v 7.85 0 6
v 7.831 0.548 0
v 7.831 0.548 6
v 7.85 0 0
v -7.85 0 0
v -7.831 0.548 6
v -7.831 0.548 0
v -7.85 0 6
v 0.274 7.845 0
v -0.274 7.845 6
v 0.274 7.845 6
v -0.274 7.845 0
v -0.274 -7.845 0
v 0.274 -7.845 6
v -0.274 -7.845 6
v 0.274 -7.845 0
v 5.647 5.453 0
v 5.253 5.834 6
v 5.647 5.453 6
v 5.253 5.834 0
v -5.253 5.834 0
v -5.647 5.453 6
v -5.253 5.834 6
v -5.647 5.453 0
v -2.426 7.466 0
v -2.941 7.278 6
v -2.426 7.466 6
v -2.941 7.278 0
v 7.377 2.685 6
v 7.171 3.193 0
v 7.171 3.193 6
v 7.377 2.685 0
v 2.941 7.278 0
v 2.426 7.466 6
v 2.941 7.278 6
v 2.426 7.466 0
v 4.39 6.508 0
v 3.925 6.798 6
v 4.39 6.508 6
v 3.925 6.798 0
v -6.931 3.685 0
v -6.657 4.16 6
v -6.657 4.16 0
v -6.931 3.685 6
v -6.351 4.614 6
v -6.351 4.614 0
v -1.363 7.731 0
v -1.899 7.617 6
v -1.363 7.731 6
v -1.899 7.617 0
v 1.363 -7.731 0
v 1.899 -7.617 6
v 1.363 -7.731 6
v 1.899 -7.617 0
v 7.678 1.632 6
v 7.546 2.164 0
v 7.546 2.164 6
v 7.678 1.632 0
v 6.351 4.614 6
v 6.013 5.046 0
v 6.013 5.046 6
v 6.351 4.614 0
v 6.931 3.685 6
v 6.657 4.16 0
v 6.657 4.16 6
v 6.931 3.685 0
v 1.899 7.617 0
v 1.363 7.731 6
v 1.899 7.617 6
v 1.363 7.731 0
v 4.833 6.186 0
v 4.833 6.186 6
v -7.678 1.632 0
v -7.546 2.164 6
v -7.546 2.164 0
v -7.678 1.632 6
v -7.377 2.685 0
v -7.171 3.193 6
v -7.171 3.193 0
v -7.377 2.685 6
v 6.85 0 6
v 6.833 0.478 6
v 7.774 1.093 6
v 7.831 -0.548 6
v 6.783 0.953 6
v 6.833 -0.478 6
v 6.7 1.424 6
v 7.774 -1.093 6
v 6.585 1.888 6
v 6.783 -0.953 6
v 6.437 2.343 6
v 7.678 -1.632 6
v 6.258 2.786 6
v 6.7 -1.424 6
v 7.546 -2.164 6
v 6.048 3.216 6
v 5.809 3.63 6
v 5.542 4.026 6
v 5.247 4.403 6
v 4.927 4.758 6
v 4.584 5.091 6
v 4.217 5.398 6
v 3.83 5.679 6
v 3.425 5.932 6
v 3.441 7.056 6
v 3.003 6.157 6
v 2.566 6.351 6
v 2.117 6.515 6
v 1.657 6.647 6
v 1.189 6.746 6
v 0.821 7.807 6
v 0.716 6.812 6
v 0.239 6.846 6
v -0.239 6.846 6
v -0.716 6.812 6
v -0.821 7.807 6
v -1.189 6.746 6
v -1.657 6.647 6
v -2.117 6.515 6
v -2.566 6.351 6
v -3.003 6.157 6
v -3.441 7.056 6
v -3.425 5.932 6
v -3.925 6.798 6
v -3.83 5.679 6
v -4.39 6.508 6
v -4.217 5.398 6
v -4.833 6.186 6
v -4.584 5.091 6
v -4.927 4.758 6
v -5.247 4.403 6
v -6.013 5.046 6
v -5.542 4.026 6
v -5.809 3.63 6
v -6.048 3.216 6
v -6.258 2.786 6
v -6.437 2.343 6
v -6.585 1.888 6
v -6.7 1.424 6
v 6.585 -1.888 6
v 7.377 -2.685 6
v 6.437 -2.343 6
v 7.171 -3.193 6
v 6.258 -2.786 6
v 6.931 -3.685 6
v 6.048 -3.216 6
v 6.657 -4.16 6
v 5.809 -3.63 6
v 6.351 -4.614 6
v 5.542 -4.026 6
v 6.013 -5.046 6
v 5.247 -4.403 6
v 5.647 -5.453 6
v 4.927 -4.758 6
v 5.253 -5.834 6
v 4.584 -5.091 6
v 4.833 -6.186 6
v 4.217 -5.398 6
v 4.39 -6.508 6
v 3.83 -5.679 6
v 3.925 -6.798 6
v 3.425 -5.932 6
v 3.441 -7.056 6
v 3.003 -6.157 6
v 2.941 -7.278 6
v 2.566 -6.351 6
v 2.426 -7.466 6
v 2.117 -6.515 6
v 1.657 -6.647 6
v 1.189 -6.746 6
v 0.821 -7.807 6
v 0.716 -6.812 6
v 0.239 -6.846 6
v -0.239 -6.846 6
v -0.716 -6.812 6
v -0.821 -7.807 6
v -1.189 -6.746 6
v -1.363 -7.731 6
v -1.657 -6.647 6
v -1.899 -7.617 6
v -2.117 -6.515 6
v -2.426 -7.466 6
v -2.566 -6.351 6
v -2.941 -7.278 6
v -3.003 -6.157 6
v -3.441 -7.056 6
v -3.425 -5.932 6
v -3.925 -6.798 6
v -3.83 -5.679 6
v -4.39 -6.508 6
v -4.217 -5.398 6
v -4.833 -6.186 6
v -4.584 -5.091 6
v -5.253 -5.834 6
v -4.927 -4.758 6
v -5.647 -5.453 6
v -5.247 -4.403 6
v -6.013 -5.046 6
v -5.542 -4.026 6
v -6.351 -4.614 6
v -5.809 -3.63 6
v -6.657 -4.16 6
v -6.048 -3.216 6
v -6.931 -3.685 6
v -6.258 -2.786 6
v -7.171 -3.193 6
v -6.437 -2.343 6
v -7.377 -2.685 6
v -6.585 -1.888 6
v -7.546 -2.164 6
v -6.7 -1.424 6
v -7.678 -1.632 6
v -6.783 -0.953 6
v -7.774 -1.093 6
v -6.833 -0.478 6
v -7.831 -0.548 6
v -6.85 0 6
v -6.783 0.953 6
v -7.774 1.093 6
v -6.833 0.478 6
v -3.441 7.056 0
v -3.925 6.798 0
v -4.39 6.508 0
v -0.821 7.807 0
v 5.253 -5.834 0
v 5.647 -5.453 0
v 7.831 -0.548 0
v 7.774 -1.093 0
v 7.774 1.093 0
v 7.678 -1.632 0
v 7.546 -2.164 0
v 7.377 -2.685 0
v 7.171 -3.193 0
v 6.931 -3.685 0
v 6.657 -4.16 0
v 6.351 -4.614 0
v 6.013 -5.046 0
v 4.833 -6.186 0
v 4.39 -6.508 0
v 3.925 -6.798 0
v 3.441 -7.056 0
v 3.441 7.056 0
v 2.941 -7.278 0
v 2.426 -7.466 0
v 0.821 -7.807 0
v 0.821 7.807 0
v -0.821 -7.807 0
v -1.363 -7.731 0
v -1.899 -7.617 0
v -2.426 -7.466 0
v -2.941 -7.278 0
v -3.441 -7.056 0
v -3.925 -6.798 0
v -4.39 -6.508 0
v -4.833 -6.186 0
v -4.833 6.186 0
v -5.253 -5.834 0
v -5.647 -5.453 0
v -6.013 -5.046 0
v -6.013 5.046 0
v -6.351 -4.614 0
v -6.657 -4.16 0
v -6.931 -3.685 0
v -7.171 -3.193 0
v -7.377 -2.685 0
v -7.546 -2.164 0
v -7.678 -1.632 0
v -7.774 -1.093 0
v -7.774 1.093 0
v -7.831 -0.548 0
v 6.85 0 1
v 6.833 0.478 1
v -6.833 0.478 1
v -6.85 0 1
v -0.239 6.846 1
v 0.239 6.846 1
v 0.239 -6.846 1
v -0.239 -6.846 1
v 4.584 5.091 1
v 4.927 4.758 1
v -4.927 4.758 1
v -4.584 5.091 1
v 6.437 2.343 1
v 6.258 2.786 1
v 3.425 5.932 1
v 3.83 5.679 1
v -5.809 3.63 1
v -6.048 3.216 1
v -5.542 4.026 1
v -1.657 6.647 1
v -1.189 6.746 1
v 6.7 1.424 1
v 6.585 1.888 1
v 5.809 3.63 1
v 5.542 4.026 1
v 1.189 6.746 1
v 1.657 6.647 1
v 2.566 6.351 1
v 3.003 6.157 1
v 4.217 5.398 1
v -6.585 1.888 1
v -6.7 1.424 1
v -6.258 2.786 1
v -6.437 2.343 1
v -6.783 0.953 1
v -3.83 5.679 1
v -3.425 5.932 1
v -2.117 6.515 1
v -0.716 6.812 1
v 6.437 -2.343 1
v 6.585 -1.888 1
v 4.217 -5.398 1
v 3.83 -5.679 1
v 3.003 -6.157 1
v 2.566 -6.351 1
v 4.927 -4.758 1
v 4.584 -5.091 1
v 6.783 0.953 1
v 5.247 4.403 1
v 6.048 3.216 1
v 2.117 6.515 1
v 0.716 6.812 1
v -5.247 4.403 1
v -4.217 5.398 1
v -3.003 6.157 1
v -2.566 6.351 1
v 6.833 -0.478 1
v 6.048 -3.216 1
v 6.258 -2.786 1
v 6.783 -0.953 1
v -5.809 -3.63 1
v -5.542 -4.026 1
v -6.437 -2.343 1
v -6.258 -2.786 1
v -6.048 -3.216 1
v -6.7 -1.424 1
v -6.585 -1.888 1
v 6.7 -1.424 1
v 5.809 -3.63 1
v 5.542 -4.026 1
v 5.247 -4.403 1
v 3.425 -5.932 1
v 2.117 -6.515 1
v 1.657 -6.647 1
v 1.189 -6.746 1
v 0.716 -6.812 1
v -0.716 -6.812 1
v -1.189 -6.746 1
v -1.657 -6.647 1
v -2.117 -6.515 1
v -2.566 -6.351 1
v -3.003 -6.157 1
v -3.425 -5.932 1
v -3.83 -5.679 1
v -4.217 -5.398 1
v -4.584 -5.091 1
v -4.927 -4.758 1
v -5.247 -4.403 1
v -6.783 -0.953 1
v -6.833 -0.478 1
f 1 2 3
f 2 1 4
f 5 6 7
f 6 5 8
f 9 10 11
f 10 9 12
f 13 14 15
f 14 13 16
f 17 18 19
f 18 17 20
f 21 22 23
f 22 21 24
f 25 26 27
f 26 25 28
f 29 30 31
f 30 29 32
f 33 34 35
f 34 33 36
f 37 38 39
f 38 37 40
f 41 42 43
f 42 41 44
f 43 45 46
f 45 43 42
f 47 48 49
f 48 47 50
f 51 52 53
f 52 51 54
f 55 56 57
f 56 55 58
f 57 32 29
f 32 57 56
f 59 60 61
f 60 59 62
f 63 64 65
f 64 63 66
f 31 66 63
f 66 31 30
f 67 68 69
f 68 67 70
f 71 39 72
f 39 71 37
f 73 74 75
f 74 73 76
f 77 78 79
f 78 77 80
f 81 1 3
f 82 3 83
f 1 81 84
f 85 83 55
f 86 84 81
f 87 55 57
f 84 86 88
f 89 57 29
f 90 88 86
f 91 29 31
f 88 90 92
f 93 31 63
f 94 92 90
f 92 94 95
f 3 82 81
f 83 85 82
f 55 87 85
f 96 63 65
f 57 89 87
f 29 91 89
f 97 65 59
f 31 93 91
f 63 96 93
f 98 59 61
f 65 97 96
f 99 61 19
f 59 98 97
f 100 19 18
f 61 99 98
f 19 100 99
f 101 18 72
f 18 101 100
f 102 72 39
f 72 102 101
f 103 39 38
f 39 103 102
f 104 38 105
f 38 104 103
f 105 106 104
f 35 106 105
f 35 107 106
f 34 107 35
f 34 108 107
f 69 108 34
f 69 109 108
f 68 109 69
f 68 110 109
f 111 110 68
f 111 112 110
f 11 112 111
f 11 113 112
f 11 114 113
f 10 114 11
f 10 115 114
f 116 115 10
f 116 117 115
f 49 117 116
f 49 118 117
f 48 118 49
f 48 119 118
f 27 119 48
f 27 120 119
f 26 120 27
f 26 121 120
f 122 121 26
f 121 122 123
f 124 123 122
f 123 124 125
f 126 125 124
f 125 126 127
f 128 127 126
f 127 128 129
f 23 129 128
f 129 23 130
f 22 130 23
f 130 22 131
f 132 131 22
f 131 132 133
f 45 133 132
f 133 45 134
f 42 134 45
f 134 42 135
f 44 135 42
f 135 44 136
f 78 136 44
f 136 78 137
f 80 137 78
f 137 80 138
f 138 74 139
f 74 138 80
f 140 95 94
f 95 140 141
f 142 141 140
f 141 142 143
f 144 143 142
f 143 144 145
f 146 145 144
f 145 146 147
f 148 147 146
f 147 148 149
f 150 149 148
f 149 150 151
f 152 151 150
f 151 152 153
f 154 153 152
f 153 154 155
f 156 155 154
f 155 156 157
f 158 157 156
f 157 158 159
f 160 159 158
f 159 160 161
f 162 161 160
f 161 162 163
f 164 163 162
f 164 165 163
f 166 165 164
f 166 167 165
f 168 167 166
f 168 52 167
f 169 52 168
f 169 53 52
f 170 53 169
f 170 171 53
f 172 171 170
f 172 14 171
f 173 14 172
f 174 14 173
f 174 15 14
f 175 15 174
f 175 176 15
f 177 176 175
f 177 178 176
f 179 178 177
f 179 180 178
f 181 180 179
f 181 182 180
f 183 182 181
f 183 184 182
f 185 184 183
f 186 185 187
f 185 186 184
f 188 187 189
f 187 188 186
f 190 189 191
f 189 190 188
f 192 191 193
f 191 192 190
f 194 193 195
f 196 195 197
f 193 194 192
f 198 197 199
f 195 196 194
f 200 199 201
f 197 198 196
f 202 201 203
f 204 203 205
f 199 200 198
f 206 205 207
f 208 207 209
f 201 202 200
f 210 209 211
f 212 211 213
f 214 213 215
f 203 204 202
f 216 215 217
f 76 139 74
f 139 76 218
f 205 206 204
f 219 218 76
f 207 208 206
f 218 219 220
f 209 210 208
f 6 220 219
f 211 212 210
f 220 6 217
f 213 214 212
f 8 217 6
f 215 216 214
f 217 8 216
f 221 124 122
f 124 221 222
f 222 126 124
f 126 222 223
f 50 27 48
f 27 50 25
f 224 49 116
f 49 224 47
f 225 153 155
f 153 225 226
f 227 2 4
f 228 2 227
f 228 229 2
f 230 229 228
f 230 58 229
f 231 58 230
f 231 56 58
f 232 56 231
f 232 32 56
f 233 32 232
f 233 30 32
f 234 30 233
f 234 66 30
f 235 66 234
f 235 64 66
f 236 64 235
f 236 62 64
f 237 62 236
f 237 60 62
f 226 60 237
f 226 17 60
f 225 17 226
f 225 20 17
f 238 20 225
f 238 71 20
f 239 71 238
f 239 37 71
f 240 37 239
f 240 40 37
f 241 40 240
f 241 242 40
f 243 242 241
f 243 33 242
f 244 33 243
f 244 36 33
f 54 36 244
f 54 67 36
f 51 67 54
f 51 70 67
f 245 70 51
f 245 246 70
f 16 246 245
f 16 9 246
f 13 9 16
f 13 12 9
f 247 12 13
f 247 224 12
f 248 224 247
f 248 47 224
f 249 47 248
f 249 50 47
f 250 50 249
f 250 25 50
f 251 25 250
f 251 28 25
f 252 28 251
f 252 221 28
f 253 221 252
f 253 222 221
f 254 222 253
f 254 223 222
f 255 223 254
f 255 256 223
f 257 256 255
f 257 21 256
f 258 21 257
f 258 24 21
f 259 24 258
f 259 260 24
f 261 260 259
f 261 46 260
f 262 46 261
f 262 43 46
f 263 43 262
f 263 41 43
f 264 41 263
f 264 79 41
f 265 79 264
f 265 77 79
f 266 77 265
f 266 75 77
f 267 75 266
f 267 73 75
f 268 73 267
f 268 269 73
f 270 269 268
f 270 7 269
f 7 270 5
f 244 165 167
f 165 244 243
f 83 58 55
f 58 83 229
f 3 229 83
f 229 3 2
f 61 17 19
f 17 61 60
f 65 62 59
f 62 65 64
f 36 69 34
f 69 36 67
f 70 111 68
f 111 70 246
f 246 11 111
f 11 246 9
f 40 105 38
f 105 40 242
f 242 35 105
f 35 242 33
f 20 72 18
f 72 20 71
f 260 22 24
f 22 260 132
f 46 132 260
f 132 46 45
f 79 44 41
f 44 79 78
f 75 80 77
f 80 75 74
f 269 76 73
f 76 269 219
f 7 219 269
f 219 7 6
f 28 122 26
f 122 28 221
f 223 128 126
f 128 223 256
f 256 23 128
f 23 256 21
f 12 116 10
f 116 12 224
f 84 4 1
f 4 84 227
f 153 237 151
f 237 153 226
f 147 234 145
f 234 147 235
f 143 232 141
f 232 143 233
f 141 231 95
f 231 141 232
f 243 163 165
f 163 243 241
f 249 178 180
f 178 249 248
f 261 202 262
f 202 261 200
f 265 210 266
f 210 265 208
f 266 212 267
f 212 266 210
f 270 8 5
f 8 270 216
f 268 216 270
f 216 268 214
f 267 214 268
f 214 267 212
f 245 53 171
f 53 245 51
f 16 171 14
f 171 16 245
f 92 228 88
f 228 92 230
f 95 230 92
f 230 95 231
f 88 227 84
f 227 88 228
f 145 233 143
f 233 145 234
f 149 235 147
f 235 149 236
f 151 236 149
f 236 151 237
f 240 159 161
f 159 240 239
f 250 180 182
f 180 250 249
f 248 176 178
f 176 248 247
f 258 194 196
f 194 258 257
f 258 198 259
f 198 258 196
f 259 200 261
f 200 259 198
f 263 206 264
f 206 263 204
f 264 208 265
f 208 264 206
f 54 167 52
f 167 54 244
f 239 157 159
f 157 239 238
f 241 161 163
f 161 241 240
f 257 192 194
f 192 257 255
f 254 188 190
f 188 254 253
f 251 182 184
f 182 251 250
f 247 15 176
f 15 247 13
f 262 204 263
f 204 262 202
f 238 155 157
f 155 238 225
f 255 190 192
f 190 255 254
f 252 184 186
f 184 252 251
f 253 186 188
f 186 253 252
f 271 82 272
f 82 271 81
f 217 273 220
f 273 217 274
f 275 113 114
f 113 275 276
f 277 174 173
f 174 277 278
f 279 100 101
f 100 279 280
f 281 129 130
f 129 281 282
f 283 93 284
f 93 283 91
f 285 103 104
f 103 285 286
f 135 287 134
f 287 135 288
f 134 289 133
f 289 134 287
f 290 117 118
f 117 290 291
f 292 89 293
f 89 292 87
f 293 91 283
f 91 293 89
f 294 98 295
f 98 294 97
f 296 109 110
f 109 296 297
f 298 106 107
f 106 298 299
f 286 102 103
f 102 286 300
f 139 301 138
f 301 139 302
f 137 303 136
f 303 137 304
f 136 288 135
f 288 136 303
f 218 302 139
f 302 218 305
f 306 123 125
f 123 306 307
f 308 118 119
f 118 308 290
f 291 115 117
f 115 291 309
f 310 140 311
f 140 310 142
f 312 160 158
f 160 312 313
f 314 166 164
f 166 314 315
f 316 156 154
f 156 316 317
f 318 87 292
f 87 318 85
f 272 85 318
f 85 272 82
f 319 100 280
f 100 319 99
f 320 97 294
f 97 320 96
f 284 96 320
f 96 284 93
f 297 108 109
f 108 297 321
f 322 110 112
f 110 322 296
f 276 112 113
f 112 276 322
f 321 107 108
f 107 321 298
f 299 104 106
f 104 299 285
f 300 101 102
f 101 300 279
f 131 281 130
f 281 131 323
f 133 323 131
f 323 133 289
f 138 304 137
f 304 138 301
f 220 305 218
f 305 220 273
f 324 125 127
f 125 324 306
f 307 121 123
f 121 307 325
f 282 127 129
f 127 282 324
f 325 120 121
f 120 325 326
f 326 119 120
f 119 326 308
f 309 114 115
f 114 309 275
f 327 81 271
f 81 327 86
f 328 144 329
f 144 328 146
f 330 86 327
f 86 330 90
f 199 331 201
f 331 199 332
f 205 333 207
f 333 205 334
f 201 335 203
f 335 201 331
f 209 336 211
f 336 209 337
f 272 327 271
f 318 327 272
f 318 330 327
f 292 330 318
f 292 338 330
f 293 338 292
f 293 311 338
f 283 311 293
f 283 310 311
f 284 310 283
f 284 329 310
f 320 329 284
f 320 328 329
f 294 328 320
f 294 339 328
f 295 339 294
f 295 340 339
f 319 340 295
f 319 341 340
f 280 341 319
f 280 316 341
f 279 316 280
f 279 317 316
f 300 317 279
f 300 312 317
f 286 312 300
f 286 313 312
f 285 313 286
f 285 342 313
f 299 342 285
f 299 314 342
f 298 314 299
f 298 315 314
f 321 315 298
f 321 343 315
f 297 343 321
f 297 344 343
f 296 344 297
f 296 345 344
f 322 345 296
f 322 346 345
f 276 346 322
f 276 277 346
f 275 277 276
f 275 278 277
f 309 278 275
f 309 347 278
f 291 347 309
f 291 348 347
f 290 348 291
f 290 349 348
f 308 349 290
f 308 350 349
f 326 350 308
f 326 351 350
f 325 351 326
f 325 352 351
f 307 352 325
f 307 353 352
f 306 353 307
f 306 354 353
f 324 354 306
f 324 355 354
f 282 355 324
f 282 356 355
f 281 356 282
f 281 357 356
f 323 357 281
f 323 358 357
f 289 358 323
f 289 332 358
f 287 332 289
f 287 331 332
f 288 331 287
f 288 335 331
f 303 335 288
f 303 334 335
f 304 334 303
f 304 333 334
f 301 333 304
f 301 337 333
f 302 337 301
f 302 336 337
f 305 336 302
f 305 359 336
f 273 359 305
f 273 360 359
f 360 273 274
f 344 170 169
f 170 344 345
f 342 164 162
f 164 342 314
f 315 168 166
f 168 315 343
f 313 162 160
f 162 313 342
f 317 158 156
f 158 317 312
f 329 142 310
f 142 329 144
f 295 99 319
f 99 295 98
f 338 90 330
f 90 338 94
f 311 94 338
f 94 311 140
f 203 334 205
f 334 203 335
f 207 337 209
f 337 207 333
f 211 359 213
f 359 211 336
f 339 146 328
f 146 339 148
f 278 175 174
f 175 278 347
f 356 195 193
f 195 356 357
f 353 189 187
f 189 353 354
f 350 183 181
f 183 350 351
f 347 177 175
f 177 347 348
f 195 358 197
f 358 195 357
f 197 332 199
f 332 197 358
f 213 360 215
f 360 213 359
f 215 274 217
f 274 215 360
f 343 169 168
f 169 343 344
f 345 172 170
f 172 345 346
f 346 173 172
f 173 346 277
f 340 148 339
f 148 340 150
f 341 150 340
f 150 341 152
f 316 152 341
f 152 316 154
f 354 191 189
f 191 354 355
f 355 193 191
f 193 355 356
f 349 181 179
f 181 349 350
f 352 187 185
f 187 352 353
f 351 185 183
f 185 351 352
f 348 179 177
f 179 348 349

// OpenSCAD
$inner_diameter = 11.5/2; //Radius of batter wall (mm)

$battery_offset = 1;

$battery_height = 29.5;
//$battery_height = 5;

$pod_width = 1;
$pod_bottom = 1;

$number_of_batteries = 1;

$tolerence = 0.2;

$endcap_top = 1;

$peg_width = 4;

$keyway_width = 5;

//$number_of_fragents = 45;
$number_of_fragents = 90;

module reference_battery($fn = $number_of_fragents) {
    // reference stethoscope head as it was too complex to load into memory
    cylinder(h = $battery_height, r = $inner_diameter);

}

module pod($fn = $number_of_fragents) {


    difference() {
        
        cylinder(h = 5 + $pod_bottom, r =  $inner_diameter + $pod_width + $tolerence/2 + $pod_width);
        translate([0, 0, $pod_bottom])
        cylinder(h = $battery_height*3, r =  $inner_diameter + $pod_width + $tolerence/2);
          
    }
}


for (a =[0:1:$number_of_batteries - 1]){
    echo(a);
    translate(v = [0, 0, a*($battery_height + $tolerence)]){

//        translate([0, 0, $pod_bottom])
//        reference_battery();
        pod();
    }
}
